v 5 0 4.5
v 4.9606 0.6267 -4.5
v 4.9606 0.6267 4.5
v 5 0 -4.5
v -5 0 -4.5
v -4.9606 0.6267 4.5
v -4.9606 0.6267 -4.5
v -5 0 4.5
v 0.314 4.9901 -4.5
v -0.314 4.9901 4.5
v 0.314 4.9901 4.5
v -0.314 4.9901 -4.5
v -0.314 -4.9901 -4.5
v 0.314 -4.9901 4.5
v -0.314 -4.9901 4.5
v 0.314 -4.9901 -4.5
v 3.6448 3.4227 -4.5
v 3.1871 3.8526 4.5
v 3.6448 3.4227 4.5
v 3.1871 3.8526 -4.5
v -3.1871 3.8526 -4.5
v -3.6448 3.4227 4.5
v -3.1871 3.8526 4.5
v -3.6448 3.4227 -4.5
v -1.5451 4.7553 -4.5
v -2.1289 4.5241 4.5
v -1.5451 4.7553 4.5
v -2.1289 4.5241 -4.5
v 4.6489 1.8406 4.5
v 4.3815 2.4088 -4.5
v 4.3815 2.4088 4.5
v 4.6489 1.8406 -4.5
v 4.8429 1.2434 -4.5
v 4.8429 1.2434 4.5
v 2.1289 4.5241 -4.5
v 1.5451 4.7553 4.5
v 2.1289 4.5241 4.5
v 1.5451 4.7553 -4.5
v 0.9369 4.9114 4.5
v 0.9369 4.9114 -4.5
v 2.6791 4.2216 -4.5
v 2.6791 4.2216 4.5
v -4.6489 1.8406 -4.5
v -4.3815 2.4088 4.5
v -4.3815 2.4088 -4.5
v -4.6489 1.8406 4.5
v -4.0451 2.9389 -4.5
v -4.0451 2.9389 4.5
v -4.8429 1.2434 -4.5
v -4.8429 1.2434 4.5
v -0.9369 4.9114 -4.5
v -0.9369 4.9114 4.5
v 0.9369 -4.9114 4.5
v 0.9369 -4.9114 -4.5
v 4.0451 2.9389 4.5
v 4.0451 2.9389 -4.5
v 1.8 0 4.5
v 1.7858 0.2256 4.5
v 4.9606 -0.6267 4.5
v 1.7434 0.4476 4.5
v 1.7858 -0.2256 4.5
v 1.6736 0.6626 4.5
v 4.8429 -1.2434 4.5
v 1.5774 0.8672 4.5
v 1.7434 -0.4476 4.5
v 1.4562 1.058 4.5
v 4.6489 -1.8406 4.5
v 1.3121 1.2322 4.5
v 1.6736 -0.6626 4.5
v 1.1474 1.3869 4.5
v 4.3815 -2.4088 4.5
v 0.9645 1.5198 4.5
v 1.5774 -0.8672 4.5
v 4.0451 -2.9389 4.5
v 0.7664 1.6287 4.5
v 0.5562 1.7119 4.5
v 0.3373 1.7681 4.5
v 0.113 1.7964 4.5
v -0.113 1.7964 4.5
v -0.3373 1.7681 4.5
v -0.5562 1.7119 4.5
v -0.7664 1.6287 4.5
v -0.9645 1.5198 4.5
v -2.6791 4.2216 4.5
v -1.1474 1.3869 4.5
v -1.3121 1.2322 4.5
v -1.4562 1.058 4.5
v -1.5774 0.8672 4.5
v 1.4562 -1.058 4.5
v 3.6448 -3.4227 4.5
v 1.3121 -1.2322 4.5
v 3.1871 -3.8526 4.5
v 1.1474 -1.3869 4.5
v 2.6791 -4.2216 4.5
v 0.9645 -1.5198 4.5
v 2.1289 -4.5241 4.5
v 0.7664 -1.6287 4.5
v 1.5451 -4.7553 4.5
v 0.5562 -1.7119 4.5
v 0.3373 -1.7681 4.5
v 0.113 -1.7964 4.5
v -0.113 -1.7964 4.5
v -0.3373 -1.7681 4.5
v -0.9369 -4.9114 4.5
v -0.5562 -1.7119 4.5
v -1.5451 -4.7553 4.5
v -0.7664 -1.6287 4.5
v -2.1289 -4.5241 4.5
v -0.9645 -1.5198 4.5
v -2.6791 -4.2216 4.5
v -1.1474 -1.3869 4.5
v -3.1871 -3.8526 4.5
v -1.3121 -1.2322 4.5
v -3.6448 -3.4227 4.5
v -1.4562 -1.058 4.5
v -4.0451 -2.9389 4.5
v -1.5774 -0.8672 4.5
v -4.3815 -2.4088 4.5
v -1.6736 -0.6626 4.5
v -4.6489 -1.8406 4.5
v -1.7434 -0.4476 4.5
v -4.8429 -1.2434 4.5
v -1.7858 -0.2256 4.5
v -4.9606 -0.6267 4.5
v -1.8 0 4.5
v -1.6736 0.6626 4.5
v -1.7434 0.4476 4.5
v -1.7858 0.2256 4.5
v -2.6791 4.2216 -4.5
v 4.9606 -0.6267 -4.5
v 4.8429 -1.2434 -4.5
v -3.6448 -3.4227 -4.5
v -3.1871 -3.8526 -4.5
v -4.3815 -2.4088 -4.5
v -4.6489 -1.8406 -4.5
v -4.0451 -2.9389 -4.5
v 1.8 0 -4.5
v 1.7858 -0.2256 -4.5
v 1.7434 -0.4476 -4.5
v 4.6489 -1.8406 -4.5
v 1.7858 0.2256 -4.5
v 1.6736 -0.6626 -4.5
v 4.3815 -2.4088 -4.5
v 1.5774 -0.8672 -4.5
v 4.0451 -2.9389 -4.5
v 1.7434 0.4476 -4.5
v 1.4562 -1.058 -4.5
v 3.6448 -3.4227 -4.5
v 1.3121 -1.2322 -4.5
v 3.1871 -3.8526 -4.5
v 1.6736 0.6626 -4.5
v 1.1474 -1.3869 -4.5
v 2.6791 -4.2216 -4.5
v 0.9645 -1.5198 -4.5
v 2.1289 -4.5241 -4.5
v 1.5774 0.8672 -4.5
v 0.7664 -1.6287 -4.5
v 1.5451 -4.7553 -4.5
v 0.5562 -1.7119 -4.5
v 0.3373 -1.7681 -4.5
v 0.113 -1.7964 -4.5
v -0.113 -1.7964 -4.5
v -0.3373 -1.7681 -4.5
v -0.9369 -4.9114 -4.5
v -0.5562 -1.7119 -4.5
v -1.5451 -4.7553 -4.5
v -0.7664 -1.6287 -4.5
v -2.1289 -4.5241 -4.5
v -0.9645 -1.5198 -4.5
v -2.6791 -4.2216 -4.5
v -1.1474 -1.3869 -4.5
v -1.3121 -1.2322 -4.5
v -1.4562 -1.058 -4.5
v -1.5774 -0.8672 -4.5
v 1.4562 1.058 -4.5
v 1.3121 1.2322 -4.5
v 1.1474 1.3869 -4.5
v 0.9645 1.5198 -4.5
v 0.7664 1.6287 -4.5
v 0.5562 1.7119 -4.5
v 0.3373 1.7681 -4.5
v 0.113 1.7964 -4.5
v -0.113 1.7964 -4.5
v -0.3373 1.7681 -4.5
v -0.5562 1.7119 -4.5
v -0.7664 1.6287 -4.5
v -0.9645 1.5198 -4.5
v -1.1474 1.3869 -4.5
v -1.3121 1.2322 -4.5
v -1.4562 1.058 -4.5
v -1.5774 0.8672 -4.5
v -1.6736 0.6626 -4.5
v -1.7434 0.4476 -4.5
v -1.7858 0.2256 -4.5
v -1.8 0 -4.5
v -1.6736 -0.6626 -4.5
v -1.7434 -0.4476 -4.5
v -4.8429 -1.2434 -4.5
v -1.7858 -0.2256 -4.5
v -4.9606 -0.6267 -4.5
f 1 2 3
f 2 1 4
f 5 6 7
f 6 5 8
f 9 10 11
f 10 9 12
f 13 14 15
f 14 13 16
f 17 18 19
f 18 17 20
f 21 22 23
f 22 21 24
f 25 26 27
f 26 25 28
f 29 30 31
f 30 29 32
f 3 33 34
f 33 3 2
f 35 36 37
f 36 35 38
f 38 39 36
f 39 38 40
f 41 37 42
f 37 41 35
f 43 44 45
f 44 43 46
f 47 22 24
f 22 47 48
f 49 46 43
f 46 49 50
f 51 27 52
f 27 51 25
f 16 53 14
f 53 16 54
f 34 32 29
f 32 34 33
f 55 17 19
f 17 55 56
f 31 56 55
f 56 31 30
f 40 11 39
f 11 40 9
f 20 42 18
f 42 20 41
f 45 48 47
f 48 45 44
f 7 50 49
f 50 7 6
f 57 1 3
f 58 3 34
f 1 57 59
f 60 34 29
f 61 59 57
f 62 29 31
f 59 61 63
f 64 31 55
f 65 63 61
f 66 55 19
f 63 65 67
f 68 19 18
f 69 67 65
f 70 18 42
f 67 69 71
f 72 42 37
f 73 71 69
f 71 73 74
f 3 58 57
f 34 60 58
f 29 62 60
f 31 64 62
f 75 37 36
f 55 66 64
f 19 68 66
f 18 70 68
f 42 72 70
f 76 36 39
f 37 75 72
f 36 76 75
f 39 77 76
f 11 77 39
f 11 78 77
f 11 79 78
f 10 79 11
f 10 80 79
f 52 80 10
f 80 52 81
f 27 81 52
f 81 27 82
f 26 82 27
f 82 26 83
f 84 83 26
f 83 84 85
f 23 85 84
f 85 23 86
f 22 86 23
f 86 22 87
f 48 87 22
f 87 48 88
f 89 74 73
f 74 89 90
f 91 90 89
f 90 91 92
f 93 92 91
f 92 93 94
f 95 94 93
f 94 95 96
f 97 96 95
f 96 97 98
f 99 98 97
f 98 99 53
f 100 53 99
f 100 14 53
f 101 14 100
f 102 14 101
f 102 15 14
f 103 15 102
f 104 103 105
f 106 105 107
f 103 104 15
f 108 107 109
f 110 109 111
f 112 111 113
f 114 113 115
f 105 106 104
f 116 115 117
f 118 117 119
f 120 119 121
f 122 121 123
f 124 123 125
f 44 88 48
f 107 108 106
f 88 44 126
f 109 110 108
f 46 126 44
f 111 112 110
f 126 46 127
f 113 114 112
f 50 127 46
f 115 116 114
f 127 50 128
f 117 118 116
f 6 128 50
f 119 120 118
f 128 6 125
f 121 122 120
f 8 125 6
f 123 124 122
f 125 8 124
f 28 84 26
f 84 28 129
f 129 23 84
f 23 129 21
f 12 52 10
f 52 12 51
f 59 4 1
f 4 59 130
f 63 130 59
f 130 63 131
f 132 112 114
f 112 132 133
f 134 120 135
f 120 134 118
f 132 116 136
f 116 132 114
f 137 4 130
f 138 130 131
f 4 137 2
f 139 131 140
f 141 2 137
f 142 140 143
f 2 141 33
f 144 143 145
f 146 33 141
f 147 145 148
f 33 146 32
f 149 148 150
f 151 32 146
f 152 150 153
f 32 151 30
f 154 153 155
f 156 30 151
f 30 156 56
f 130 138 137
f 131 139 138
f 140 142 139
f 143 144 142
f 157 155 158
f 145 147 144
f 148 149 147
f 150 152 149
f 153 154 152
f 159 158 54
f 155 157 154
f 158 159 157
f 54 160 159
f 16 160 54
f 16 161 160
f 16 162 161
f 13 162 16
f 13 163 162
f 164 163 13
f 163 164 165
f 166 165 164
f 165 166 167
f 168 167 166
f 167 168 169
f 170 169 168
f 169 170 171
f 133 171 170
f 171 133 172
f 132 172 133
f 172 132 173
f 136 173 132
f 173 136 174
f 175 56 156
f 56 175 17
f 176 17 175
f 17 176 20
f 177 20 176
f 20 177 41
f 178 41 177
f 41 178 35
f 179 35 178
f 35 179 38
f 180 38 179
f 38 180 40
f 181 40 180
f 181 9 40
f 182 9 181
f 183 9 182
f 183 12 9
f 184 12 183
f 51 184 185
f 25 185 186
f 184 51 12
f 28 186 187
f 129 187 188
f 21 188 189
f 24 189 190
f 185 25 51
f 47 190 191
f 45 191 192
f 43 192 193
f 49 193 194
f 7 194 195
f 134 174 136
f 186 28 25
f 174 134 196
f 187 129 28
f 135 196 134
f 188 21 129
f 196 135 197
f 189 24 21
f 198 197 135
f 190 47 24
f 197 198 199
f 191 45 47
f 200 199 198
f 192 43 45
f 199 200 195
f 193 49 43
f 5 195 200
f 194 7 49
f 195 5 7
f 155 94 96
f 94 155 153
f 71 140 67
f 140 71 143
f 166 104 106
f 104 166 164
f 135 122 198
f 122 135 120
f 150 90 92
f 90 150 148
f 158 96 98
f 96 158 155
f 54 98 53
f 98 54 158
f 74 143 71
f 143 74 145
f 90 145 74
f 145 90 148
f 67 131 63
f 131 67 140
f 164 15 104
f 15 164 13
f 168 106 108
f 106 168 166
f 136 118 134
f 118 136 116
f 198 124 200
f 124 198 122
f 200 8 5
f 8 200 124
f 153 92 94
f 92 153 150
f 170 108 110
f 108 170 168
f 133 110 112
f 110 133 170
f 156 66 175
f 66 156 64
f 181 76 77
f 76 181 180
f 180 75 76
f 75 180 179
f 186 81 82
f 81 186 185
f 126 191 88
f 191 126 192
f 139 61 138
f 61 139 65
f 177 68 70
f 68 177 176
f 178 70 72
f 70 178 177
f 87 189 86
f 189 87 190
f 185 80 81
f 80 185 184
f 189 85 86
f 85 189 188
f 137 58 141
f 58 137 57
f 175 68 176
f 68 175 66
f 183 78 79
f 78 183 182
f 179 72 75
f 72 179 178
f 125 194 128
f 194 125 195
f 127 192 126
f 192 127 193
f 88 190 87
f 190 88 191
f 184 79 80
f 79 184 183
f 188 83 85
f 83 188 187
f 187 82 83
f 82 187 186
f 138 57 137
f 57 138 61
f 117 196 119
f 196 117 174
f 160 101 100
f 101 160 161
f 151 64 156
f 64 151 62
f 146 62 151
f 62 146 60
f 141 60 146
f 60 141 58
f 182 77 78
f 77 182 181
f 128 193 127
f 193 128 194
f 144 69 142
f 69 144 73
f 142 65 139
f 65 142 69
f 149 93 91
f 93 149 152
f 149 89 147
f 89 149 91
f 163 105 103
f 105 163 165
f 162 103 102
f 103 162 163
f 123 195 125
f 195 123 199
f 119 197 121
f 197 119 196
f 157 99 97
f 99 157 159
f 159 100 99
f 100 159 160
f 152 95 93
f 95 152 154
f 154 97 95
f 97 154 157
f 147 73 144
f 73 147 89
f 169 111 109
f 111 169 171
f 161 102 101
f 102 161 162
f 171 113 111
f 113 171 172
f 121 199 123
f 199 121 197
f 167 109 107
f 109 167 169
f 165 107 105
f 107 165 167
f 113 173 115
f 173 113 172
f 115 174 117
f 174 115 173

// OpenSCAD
$fn = 50;


difference() {
	union() {
		translate(v = [0, 0, -4.5000000000]) {
			cylinder(h = 9, r = 5.0000000000);
		}
	}
	union() {
		translate(v = [0, 0, -100.0000000000]) {
			cylinder(h = 200, r = 1.8000000000);
		}
	}
}
